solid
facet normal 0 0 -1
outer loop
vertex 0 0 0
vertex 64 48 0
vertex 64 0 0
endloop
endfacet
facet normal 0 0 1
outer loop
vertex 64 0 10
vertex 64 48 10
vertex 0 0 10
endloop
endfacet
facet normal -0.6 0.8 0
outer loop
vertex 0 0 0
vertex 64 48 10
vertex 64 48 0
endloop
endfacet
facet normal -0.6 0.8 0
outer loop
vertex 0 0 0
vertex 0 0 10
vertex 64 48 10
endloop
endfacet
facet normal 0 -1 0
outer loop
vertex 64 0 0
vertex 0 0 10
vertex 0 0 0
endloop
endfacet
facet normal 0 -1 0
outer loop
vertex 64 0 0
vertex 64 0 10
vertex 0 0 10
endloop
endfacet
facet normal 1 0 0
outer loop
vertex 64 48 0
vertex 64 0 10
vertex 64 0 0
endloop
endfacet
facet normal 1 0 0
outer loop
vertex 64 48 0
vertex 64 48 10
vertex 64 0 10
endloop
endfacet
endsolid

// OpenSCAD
// File ExtrudedTriangle.scad
//Creates a triangle with vertices at the three points shown.
// it is thickness thick (mm)

// (c) 2023 Rich Cameron, for the book Make:Trigonometry
// Licensed under a Creative Commons, Attribution,
// CC-BY 4.0 international license, per
// https://creativecommons.org/licenses/by/4.0/
// Attribute to Rich Cameron, at
// repository github.com/whosawhatsis/Trigonometry

thickness = 10;
 
linear_extrude(thickness)polygon([[0, 0], [64, 0],[64, 48]]);
